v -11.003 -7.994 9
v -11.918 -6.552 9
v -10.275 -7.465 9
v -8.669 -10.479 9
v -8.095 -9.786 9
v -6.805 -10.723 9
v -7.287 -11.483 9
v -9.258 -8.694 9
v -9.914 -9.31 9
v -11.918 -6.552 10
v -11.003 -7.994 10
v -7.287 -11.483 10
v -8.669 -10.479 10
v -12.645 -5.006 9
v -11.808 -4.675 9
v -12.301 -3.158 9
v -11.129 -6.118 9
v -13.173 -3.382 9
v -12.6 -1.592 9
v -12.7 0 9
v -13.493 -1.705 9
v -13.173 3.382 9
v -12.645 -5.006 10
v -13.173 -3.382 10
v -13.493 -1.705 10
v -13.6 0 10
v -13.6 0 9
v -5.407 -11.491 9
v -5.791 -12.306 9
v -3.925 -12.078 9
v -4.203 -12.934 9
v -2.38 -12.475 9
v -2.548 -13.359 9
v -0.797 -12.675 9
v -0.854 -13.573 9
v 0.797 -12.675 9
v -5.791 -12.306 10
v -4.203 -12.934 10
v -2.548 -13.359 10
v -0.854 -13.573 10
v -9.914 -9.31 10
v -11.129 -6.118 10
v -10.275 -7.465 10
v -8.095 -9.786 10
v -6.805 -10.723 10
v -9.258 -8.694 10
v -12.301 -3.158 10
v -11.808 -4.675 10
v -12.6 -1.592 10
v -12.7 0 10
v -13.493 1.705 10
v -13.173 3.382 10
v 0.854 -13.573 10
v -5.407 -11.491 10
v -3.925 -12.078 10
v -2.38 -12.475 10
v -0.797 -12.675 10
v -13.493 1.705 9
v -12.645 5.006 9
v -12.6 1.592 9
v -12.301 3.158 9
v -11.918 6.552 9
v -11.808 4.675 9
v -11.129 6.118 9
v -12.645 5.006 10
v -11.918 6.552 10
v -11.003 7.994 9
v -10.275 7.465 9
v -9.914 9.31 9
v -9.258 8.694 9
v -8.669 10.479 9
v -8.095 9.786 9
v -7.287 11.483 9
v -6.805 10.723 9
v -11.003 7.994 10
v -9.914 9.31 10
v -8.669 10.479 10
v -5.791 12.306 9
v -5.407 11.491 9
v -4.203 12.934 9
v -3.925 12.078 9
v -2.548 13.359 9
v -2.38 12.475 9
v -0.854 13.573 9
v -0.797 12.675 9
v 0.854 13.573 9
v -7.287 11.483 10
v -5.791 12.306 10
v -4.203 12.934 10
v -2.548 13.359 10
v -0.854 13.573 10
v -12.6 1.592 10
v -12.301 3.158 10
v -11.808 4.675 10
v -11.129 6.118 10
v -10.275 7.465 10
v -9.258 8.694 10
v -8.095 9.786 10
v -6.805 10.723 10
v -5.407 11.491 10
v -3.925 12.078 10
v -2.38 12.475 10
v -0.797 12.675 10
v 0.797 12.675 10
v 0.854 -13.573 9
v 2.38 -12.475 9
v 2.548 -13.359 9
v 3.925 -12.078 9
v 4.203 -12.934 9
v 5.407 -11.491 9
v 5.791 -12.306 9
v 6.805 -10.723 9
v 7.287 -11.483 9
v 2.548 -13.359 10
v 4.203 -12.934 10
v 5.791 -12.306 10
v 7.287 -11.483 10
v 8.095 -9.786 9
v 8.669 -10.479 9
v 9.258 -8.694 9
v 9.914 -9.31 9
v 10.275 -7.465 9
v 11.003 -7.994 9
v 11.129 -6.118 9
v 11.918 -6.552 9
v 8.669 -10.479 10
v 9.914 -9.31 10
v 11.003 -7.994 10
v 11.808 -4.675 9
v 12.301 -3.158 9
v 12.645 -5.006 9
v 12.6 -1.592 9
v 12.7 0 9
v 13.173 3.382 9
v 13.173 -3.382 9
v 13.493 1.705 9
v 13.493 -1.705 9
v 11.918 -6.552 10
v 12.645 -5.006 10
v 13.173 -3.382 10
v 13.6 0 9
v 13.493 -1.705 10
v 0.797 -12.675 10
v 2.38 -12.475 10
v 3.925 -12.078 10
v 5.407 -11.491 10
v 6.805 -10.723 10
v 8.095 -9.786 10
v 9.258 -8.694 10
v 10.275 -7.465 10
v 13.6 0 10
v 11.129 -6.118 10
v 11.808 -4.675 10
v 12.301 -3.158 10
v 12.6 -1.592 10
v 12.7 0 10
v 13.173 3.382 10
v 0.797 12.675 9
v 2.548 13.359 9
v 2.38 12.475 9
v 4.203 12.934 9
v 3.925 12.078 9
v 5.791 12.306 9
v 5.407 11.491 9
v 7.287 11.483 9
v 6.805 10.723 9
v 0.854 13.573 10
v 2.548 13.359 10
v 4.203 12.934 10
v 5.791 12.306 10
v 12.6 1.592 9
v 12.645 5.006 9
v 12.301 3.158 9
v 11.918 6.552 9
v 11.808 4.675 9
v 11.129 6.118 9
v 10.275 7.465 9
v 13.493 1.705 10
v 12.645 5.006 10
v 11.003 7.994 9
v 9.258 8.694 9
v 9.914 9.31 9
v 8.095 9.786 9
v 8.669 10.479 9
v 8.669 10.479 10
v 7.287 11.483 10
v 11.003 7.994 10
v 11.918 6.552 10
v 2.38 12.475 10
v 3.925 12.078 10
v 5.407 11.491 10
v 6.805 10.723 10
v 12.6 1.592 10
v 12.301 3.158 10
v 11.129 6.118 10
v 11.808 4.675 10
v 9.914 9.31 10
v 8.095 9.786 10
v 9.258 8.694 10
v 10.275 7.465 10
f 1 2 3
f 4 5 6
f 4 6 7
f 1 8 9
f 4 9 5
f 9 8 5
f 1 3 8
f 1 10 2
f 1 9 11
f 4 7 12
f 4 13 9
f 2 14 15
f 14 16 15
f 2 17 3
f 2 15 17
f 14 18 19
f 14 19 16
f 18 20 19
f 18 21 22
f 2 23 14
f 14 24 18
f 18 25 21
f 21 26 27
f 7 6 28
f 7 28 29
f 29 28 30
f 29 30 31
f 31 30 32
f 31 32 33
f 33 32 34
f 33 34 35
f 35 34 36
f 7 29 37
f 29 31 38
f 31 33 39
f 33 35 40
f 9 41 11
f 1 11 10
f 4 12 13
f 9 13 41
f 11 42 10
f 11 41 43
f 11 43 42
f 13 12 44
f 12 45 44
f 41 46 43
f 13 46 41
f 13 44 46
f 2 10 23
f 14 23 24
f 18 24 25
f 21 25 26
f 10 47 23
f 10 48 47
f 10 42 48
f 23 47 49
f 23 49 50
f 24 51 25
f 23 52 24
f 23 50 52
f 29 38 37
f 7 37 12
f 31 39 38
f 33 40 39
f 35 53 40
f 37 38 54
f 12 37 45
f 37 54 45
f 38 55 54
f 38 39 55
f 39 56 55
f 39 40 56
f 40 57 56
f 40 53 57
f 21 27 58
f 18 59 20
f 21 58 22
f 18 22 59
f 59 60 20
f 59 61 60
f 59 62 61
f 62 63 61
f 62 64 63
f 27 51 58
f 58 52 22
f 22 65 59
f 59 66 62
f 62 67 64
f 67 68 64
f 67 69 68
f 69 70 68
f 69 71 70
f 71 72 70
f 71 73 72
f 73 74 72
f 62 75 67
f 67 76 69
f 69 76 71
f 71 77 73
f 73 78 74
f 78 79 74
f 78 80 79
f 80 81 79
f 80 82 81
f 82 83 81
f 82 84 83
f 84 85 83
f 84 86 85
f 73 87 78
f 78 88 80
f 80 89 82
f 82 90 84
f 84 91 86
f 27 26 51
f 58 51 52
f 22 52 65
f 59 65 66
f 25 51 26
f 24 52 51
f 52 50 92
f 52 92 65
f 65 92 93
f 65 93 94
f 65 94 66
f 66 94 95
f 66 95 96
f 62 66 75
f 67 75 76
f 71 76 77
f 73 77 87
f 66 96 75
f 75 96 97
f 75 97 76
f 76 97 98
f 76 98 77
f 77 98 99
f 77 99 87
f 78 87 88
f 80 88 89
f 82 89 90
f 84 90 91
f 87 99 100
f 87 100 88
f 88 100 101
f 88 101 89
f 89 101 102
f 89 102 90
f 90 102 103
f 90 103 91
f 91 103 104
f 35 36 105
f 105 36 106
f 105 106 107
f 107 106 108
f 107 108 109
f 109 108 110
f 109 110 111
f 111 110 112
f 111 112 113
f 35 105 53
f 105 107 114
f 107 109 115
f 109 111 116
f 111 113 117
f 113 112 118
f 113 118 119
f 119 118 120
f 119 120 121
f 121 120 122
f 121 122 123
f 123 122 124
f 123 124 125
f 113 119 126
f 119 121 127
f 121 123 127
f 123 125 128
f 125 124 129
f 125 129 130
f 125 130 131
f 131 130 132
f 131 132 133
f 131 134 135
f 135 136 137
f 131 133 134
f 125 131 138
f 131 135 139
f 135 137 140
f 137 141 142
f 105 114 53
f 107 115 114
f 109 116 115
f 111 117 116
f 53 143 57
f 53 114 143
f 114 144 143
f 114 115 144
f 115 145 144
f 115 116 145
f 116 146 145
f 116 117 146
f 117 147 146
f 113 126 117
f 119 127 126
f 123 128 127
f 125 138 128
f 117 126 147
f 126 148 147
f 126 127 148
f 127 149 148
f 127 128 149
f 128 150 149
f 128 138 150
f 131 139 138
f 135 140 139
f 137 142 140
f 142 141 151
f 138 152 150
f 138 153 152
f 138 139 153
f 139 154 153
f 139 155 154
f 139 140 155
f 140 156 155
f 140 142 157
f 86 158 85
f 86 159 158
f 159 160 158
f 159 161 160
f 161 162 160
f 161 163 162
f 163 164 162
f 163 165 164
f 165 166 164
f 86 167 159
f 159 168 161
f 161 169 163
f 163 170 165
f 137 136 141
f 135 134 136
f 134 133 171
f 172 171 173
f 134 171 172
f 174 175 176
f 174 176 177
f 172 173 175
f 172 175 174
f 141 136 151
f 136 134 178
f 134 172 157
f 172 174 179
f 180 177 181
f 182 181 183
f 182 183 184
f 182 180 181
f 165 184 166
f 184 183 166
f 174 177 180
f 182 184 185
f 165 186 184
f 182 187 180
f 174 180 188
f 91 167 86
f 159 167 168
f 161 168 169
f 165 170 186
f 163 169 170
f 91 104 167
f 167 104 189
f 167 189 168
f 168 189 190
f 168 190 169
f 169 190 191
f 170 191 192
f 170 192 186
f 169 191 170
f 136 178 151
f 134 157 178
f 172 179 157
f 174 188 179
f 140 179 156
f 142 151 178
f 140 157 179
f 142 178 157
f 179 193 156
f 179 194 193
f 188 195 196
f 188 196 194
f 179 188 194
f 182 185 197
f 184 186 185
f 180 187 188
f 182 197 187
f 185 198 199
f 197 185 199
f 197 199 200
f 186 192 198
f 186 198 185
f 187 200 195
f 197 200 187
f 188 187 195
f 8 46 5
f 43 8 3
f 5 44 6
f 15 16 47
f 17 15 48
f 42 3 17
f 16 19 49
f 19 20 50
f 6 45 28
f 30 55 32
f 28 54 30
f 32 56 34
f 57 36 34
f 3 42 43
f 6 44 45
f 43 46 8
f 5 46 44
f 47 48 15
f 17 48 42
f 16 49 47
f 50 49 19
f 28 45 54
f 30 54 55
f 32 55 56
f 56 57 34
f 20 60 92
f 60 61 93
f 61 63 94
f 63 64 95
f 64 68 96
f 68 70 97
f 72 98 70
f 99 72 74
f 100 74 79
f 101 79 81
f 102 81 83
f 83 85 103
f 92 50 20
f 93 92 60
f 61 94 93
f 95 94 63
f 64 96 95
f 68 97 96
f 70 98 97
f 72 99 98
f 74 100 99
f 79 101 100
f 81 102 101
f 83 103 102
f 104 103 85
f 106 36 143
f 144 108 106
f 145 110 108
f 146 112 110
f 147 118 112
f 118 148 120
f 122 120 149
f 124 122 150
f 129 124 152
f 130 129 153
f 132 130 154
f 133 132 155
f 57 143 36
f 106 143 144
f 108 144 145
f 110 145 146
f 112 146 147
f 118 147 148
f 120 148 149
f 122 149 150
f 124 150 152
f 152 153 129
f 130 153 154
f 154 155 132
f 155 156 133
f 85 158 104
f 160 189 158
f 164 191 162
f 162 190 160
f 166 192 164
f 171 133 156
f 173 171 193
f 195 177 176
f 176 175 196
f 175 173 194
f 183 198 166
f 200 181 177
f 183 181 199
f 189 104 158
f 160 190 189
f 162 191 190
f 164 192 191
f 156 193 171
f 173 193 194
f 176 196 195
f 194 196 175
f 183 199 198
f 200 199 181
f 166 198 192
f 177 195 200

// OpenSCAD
$fn = 50;

difference() {
	union() {
		translate(v = [0, 0, 9.0]) {
			cylinder(h = 1, r = 13.6);
		}
	}
	union() {
		translate(v = [0, 0, 8]) {
			cylinder(h = 3, r = 12.7);
		}
	}
}
